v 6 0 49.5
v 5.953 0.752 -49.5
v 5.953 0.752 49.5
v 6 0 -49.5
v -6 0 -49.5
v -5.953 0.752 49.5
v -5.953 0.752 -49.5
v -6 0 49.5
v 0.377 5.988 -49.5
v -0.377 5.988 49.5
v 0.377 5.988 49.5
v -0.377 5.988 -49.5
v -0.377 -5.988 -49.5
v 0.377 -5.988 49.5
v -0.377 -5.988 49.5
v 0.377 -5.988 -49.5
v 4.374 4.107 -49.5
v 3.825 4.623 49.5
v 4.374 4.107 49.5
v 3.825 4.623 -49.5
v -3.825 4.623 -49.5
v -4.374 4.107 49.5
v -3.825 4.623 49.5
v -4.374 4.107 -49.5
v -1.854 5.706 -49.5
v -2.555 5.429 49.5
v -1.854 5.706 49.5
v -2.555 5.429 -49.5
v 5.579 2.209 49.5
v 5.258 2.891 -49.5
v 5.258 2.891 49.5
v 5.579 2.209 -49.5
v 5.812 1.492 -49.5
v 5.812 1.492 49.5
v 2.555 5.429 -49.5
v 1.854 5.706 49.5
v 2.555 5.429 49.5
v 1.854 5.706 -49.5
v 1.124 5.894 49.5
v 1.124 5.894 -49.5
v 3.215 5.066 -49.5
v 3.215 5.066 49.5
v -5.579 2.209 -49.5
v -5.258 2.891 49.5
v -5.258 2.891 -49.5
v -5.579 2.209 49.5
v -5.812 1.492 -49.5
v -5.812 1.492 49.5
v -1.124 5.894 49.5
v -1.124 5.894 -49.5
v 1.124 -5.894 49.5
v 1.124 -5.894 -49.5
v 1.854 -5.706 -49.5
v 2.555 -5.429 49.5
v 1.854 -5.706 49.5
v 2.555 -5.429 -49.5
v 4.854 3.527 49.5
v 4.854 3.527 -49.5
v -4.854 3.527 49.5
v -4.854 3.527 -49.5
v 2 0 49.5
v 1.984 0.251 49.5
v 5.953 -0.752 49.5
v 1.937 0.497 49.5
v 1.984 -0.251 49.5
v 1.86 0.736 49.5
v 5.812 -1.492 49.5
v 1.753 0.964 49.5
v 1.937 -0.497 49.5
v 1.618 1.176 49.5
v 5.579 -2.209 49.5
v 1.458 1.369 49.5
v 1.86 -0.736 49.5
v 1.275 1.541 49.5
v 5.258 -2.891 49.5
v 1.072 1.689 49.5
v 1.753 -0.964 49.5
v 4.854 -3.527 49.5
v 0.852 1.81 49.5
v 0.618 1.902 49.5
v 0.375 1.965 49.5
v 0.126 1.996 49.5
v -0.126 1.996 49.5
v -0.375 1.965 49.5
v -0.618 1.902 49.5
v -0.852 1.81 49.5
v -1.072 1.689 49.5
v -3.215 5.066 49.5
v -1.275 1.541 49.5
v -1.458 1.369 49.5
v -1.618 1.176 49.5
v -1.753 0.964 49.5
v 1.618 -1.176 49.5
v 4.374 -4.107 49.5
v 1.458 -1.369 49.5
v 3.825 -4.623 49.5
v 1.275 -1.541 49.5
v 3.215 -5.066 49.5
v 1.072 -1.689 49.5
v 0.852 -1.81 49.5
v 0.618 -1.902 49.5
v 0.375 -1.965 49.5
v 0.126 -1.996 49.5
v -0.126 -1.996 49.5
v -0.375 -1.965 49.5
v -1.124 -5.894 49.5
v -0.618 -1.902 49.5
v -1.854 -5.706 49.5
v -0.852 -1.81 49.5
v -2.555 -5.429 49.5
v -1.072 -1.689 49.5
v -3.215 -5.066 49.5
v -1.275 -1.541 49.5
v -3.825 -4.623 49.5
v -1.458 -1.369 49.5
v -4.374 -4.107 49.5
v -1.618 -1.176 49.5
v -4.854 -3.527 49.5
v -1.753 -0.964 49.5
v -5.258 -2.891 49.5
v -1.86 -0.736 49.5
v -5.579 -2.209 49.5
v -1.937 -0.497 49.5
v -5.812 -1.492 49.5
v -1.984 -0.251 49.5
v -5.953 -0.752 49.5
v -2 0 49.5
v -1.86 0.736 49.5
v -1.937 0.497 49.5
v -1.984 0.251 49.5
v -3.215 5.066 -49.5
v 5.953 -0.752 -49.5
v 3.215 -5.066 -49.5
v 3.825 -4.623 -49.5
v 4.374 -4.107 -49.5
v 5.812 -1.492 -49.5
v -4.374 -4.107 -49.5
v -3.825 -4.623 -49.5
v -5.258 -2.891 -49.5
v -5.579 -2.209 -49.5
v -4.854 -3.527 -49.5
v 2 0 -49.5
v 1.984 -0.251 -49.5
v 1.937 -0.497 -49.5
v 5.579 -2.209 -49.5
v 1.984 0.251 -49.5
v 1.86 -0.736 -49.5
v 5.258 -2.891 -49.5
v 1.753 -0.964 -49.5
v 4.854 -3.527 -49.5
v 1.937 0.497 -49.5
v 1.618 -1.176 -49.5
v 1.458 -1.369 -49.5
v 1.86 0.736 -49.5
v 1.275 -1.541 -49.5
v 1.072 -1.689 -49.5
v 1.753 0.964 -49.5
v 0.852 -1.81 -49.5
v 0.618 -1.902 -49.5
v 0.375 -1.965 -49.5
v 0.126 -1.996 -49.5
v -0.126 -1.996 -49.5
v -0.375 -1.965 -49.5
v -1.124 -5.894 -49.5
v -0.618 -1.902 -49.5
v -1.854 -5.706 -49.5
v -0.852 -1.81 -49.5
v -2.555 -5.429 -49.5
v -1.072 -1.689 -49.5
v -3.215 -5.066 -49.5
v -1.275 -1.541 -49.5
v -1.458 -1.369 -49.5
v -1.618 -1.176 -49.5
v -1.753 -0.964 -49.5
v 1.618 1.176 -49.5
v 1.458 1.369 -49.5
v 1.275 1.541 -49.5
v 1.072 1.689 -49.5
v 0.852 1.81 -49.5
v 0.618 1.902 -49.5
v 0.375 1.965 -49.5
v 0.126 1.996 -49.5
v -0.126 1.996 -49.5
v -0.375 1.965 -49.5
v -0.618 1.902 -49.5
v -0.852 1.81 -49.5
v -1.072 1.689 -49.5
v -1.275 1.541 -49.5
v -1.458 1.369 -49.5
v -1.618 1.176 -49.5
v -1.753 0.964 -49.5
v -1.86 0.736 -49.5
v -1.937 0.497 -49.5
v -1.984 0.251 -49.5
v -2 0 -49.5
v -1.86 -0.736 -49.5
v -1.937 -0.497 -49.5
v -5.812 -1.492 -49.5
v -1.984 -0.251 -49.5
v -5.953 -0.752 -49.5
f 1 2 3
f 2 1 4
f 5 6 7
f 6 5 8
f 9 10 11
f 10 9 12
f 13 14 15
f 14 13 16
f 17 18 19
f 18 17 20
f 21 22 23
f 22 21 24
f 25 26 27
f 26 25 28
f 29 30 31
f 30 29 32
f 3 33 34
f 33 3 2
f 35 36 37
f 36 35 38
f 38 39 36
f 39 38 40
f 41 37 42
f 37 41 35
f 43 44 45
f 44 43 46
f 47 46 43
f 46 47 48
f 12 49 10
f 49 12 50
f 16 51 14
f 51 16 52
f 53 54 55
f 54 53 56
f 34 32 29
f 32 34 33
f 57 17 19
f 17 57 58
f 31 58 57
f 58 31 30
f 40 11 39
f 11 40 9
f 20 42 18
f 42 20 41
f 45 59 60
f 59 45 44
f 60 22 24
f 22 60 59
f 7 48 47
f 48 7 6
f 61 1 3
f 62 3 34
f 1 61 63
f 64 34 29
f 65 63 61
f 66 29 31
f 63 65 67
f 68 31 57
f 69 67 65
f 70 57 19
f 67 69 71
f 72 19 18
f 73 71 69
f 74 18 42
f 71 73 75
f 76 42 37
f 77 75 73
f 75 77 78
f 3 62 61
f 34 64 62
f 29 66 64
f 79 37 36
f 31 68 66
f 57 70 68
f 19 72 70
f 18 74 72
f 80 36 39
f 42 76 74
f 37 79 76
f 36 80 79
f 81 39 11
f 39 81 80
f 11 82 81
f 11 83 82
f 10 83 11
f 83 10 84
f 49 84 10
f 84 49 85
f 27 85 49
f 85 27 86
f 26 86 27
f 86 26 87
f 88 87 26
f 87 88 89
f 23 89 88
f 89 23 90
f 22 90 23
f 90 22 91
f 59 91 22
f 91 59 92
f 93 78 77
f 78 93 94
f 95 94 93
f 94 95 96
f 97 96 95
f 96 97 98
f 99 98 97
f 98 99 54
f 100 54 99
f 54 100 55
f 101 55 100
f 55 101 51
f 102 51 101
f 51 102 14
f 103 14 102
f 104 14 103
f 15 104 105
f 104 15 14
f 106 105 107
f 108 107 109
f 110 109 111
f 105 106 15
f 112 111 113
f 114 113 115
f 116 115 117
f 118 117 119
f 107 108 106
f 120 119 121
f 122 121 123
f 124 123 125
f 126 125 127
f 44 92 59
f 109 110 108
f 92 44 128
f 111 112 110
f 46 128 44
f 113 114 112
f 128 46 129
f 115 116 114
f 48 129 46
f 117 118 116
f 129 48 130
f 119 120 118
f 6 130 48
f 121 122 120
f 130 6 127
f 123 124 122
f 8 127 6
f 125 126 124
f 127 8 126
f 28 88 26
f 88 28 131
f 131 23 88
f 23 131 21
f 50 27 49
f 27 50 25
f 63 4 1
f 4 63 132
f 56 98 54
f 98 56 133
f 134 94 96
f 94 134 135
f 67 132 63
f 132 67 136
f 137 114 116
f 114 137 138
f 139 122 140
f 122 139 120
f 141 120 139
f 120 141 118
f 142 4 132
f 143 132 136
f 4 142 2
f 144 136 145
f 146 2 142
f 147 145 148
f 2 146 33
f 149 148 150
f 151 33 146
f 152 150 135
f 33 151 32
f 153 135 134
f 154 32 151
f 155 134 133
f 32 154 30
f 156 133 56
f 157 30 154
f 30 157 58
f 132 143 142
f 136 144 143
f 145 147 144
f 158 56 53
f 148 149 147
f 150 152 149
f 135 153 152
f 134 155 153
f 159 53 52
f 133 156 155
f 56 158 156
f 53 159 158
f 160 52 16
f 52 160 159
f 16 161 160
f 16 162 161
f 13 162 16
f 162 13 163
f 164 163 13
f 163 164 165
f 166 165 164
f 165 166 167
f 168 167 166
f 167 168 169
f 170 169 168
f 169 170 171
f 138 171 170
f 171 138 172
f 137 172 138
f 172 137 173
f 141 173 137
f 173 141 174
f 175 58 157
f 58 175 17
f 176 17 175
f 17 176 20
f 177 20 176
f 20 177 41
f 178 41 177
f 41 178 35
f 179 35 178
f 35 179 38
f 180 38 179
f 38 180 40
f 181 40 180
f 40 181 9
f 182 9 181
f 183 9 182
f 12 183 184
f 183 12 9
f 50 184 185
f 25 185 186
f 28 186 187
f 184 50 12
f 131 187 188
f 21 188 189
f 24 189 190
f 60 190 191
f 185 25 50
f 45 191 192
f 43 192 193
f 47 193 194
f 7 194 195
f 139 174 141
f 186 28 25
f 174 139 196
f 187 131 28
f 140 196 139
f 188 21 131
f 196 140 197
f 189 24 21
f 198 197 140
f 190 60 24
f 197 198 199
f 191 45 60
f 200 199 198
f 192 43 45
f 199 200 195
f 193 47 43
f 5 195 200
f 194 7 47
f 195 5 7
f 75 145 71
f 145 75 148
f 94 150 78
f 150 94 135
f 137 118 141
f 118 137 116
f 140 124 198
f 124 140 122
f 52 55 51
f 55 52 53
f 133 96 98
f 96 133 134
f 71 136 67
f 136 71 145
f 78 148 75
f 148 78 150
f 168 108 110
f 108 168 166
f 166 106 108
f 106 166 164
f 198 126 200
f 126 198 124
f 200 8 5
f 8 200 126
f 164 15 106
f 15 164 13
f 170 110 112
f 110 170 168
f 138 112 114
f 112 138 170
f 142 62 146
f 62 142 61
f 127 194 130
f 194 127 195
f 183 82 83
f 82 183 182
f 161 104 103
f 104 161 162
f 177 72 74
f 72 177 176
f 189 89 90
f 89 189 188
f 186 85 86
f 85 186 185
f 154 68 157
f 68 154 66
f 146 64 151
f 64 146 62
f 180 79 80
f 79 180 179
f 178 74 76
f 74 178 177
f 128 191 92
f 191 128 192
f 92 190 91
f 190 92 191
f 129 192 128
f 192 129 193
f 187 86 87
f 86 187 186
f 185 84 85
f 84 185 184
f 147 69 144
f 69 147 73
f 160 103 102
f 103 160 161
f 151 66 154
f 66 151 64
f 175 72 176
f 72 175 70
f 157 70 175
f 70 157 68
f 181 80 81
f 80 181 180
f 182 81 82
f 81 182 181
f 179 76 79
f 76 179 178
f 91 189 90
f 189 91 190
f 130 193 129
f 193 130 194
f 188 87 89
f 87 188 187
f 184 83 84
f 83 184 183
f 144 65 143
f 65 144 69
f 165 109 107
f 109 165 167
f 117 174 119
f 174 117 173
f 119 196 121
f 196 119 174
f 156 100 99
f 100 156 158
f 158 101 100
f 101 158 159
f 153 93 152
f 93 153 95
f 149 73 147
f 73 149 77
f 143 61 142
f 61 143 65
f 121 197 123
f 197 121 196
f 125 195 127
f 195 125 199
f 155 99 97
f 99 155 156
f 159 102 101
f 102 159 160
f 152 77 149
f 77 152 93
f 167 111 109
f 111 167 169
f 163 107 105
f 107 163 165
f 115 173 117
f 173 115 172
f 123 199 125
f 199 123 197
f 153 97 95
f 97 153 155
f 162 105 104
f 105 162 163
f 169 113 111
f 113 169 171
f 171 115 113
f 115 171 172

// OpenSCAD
$fn = 50;


difference() {
	union() {
		translate(v = [0, 0, -49.5000000000]) {
			cylinder(h = 99, r = 6.0000000000);
		}
	}
	union() {
		translate(v = [0, 0, -100.0000000000]) {
			cylinder(h = 200, r = 2);
		}
	}
}
